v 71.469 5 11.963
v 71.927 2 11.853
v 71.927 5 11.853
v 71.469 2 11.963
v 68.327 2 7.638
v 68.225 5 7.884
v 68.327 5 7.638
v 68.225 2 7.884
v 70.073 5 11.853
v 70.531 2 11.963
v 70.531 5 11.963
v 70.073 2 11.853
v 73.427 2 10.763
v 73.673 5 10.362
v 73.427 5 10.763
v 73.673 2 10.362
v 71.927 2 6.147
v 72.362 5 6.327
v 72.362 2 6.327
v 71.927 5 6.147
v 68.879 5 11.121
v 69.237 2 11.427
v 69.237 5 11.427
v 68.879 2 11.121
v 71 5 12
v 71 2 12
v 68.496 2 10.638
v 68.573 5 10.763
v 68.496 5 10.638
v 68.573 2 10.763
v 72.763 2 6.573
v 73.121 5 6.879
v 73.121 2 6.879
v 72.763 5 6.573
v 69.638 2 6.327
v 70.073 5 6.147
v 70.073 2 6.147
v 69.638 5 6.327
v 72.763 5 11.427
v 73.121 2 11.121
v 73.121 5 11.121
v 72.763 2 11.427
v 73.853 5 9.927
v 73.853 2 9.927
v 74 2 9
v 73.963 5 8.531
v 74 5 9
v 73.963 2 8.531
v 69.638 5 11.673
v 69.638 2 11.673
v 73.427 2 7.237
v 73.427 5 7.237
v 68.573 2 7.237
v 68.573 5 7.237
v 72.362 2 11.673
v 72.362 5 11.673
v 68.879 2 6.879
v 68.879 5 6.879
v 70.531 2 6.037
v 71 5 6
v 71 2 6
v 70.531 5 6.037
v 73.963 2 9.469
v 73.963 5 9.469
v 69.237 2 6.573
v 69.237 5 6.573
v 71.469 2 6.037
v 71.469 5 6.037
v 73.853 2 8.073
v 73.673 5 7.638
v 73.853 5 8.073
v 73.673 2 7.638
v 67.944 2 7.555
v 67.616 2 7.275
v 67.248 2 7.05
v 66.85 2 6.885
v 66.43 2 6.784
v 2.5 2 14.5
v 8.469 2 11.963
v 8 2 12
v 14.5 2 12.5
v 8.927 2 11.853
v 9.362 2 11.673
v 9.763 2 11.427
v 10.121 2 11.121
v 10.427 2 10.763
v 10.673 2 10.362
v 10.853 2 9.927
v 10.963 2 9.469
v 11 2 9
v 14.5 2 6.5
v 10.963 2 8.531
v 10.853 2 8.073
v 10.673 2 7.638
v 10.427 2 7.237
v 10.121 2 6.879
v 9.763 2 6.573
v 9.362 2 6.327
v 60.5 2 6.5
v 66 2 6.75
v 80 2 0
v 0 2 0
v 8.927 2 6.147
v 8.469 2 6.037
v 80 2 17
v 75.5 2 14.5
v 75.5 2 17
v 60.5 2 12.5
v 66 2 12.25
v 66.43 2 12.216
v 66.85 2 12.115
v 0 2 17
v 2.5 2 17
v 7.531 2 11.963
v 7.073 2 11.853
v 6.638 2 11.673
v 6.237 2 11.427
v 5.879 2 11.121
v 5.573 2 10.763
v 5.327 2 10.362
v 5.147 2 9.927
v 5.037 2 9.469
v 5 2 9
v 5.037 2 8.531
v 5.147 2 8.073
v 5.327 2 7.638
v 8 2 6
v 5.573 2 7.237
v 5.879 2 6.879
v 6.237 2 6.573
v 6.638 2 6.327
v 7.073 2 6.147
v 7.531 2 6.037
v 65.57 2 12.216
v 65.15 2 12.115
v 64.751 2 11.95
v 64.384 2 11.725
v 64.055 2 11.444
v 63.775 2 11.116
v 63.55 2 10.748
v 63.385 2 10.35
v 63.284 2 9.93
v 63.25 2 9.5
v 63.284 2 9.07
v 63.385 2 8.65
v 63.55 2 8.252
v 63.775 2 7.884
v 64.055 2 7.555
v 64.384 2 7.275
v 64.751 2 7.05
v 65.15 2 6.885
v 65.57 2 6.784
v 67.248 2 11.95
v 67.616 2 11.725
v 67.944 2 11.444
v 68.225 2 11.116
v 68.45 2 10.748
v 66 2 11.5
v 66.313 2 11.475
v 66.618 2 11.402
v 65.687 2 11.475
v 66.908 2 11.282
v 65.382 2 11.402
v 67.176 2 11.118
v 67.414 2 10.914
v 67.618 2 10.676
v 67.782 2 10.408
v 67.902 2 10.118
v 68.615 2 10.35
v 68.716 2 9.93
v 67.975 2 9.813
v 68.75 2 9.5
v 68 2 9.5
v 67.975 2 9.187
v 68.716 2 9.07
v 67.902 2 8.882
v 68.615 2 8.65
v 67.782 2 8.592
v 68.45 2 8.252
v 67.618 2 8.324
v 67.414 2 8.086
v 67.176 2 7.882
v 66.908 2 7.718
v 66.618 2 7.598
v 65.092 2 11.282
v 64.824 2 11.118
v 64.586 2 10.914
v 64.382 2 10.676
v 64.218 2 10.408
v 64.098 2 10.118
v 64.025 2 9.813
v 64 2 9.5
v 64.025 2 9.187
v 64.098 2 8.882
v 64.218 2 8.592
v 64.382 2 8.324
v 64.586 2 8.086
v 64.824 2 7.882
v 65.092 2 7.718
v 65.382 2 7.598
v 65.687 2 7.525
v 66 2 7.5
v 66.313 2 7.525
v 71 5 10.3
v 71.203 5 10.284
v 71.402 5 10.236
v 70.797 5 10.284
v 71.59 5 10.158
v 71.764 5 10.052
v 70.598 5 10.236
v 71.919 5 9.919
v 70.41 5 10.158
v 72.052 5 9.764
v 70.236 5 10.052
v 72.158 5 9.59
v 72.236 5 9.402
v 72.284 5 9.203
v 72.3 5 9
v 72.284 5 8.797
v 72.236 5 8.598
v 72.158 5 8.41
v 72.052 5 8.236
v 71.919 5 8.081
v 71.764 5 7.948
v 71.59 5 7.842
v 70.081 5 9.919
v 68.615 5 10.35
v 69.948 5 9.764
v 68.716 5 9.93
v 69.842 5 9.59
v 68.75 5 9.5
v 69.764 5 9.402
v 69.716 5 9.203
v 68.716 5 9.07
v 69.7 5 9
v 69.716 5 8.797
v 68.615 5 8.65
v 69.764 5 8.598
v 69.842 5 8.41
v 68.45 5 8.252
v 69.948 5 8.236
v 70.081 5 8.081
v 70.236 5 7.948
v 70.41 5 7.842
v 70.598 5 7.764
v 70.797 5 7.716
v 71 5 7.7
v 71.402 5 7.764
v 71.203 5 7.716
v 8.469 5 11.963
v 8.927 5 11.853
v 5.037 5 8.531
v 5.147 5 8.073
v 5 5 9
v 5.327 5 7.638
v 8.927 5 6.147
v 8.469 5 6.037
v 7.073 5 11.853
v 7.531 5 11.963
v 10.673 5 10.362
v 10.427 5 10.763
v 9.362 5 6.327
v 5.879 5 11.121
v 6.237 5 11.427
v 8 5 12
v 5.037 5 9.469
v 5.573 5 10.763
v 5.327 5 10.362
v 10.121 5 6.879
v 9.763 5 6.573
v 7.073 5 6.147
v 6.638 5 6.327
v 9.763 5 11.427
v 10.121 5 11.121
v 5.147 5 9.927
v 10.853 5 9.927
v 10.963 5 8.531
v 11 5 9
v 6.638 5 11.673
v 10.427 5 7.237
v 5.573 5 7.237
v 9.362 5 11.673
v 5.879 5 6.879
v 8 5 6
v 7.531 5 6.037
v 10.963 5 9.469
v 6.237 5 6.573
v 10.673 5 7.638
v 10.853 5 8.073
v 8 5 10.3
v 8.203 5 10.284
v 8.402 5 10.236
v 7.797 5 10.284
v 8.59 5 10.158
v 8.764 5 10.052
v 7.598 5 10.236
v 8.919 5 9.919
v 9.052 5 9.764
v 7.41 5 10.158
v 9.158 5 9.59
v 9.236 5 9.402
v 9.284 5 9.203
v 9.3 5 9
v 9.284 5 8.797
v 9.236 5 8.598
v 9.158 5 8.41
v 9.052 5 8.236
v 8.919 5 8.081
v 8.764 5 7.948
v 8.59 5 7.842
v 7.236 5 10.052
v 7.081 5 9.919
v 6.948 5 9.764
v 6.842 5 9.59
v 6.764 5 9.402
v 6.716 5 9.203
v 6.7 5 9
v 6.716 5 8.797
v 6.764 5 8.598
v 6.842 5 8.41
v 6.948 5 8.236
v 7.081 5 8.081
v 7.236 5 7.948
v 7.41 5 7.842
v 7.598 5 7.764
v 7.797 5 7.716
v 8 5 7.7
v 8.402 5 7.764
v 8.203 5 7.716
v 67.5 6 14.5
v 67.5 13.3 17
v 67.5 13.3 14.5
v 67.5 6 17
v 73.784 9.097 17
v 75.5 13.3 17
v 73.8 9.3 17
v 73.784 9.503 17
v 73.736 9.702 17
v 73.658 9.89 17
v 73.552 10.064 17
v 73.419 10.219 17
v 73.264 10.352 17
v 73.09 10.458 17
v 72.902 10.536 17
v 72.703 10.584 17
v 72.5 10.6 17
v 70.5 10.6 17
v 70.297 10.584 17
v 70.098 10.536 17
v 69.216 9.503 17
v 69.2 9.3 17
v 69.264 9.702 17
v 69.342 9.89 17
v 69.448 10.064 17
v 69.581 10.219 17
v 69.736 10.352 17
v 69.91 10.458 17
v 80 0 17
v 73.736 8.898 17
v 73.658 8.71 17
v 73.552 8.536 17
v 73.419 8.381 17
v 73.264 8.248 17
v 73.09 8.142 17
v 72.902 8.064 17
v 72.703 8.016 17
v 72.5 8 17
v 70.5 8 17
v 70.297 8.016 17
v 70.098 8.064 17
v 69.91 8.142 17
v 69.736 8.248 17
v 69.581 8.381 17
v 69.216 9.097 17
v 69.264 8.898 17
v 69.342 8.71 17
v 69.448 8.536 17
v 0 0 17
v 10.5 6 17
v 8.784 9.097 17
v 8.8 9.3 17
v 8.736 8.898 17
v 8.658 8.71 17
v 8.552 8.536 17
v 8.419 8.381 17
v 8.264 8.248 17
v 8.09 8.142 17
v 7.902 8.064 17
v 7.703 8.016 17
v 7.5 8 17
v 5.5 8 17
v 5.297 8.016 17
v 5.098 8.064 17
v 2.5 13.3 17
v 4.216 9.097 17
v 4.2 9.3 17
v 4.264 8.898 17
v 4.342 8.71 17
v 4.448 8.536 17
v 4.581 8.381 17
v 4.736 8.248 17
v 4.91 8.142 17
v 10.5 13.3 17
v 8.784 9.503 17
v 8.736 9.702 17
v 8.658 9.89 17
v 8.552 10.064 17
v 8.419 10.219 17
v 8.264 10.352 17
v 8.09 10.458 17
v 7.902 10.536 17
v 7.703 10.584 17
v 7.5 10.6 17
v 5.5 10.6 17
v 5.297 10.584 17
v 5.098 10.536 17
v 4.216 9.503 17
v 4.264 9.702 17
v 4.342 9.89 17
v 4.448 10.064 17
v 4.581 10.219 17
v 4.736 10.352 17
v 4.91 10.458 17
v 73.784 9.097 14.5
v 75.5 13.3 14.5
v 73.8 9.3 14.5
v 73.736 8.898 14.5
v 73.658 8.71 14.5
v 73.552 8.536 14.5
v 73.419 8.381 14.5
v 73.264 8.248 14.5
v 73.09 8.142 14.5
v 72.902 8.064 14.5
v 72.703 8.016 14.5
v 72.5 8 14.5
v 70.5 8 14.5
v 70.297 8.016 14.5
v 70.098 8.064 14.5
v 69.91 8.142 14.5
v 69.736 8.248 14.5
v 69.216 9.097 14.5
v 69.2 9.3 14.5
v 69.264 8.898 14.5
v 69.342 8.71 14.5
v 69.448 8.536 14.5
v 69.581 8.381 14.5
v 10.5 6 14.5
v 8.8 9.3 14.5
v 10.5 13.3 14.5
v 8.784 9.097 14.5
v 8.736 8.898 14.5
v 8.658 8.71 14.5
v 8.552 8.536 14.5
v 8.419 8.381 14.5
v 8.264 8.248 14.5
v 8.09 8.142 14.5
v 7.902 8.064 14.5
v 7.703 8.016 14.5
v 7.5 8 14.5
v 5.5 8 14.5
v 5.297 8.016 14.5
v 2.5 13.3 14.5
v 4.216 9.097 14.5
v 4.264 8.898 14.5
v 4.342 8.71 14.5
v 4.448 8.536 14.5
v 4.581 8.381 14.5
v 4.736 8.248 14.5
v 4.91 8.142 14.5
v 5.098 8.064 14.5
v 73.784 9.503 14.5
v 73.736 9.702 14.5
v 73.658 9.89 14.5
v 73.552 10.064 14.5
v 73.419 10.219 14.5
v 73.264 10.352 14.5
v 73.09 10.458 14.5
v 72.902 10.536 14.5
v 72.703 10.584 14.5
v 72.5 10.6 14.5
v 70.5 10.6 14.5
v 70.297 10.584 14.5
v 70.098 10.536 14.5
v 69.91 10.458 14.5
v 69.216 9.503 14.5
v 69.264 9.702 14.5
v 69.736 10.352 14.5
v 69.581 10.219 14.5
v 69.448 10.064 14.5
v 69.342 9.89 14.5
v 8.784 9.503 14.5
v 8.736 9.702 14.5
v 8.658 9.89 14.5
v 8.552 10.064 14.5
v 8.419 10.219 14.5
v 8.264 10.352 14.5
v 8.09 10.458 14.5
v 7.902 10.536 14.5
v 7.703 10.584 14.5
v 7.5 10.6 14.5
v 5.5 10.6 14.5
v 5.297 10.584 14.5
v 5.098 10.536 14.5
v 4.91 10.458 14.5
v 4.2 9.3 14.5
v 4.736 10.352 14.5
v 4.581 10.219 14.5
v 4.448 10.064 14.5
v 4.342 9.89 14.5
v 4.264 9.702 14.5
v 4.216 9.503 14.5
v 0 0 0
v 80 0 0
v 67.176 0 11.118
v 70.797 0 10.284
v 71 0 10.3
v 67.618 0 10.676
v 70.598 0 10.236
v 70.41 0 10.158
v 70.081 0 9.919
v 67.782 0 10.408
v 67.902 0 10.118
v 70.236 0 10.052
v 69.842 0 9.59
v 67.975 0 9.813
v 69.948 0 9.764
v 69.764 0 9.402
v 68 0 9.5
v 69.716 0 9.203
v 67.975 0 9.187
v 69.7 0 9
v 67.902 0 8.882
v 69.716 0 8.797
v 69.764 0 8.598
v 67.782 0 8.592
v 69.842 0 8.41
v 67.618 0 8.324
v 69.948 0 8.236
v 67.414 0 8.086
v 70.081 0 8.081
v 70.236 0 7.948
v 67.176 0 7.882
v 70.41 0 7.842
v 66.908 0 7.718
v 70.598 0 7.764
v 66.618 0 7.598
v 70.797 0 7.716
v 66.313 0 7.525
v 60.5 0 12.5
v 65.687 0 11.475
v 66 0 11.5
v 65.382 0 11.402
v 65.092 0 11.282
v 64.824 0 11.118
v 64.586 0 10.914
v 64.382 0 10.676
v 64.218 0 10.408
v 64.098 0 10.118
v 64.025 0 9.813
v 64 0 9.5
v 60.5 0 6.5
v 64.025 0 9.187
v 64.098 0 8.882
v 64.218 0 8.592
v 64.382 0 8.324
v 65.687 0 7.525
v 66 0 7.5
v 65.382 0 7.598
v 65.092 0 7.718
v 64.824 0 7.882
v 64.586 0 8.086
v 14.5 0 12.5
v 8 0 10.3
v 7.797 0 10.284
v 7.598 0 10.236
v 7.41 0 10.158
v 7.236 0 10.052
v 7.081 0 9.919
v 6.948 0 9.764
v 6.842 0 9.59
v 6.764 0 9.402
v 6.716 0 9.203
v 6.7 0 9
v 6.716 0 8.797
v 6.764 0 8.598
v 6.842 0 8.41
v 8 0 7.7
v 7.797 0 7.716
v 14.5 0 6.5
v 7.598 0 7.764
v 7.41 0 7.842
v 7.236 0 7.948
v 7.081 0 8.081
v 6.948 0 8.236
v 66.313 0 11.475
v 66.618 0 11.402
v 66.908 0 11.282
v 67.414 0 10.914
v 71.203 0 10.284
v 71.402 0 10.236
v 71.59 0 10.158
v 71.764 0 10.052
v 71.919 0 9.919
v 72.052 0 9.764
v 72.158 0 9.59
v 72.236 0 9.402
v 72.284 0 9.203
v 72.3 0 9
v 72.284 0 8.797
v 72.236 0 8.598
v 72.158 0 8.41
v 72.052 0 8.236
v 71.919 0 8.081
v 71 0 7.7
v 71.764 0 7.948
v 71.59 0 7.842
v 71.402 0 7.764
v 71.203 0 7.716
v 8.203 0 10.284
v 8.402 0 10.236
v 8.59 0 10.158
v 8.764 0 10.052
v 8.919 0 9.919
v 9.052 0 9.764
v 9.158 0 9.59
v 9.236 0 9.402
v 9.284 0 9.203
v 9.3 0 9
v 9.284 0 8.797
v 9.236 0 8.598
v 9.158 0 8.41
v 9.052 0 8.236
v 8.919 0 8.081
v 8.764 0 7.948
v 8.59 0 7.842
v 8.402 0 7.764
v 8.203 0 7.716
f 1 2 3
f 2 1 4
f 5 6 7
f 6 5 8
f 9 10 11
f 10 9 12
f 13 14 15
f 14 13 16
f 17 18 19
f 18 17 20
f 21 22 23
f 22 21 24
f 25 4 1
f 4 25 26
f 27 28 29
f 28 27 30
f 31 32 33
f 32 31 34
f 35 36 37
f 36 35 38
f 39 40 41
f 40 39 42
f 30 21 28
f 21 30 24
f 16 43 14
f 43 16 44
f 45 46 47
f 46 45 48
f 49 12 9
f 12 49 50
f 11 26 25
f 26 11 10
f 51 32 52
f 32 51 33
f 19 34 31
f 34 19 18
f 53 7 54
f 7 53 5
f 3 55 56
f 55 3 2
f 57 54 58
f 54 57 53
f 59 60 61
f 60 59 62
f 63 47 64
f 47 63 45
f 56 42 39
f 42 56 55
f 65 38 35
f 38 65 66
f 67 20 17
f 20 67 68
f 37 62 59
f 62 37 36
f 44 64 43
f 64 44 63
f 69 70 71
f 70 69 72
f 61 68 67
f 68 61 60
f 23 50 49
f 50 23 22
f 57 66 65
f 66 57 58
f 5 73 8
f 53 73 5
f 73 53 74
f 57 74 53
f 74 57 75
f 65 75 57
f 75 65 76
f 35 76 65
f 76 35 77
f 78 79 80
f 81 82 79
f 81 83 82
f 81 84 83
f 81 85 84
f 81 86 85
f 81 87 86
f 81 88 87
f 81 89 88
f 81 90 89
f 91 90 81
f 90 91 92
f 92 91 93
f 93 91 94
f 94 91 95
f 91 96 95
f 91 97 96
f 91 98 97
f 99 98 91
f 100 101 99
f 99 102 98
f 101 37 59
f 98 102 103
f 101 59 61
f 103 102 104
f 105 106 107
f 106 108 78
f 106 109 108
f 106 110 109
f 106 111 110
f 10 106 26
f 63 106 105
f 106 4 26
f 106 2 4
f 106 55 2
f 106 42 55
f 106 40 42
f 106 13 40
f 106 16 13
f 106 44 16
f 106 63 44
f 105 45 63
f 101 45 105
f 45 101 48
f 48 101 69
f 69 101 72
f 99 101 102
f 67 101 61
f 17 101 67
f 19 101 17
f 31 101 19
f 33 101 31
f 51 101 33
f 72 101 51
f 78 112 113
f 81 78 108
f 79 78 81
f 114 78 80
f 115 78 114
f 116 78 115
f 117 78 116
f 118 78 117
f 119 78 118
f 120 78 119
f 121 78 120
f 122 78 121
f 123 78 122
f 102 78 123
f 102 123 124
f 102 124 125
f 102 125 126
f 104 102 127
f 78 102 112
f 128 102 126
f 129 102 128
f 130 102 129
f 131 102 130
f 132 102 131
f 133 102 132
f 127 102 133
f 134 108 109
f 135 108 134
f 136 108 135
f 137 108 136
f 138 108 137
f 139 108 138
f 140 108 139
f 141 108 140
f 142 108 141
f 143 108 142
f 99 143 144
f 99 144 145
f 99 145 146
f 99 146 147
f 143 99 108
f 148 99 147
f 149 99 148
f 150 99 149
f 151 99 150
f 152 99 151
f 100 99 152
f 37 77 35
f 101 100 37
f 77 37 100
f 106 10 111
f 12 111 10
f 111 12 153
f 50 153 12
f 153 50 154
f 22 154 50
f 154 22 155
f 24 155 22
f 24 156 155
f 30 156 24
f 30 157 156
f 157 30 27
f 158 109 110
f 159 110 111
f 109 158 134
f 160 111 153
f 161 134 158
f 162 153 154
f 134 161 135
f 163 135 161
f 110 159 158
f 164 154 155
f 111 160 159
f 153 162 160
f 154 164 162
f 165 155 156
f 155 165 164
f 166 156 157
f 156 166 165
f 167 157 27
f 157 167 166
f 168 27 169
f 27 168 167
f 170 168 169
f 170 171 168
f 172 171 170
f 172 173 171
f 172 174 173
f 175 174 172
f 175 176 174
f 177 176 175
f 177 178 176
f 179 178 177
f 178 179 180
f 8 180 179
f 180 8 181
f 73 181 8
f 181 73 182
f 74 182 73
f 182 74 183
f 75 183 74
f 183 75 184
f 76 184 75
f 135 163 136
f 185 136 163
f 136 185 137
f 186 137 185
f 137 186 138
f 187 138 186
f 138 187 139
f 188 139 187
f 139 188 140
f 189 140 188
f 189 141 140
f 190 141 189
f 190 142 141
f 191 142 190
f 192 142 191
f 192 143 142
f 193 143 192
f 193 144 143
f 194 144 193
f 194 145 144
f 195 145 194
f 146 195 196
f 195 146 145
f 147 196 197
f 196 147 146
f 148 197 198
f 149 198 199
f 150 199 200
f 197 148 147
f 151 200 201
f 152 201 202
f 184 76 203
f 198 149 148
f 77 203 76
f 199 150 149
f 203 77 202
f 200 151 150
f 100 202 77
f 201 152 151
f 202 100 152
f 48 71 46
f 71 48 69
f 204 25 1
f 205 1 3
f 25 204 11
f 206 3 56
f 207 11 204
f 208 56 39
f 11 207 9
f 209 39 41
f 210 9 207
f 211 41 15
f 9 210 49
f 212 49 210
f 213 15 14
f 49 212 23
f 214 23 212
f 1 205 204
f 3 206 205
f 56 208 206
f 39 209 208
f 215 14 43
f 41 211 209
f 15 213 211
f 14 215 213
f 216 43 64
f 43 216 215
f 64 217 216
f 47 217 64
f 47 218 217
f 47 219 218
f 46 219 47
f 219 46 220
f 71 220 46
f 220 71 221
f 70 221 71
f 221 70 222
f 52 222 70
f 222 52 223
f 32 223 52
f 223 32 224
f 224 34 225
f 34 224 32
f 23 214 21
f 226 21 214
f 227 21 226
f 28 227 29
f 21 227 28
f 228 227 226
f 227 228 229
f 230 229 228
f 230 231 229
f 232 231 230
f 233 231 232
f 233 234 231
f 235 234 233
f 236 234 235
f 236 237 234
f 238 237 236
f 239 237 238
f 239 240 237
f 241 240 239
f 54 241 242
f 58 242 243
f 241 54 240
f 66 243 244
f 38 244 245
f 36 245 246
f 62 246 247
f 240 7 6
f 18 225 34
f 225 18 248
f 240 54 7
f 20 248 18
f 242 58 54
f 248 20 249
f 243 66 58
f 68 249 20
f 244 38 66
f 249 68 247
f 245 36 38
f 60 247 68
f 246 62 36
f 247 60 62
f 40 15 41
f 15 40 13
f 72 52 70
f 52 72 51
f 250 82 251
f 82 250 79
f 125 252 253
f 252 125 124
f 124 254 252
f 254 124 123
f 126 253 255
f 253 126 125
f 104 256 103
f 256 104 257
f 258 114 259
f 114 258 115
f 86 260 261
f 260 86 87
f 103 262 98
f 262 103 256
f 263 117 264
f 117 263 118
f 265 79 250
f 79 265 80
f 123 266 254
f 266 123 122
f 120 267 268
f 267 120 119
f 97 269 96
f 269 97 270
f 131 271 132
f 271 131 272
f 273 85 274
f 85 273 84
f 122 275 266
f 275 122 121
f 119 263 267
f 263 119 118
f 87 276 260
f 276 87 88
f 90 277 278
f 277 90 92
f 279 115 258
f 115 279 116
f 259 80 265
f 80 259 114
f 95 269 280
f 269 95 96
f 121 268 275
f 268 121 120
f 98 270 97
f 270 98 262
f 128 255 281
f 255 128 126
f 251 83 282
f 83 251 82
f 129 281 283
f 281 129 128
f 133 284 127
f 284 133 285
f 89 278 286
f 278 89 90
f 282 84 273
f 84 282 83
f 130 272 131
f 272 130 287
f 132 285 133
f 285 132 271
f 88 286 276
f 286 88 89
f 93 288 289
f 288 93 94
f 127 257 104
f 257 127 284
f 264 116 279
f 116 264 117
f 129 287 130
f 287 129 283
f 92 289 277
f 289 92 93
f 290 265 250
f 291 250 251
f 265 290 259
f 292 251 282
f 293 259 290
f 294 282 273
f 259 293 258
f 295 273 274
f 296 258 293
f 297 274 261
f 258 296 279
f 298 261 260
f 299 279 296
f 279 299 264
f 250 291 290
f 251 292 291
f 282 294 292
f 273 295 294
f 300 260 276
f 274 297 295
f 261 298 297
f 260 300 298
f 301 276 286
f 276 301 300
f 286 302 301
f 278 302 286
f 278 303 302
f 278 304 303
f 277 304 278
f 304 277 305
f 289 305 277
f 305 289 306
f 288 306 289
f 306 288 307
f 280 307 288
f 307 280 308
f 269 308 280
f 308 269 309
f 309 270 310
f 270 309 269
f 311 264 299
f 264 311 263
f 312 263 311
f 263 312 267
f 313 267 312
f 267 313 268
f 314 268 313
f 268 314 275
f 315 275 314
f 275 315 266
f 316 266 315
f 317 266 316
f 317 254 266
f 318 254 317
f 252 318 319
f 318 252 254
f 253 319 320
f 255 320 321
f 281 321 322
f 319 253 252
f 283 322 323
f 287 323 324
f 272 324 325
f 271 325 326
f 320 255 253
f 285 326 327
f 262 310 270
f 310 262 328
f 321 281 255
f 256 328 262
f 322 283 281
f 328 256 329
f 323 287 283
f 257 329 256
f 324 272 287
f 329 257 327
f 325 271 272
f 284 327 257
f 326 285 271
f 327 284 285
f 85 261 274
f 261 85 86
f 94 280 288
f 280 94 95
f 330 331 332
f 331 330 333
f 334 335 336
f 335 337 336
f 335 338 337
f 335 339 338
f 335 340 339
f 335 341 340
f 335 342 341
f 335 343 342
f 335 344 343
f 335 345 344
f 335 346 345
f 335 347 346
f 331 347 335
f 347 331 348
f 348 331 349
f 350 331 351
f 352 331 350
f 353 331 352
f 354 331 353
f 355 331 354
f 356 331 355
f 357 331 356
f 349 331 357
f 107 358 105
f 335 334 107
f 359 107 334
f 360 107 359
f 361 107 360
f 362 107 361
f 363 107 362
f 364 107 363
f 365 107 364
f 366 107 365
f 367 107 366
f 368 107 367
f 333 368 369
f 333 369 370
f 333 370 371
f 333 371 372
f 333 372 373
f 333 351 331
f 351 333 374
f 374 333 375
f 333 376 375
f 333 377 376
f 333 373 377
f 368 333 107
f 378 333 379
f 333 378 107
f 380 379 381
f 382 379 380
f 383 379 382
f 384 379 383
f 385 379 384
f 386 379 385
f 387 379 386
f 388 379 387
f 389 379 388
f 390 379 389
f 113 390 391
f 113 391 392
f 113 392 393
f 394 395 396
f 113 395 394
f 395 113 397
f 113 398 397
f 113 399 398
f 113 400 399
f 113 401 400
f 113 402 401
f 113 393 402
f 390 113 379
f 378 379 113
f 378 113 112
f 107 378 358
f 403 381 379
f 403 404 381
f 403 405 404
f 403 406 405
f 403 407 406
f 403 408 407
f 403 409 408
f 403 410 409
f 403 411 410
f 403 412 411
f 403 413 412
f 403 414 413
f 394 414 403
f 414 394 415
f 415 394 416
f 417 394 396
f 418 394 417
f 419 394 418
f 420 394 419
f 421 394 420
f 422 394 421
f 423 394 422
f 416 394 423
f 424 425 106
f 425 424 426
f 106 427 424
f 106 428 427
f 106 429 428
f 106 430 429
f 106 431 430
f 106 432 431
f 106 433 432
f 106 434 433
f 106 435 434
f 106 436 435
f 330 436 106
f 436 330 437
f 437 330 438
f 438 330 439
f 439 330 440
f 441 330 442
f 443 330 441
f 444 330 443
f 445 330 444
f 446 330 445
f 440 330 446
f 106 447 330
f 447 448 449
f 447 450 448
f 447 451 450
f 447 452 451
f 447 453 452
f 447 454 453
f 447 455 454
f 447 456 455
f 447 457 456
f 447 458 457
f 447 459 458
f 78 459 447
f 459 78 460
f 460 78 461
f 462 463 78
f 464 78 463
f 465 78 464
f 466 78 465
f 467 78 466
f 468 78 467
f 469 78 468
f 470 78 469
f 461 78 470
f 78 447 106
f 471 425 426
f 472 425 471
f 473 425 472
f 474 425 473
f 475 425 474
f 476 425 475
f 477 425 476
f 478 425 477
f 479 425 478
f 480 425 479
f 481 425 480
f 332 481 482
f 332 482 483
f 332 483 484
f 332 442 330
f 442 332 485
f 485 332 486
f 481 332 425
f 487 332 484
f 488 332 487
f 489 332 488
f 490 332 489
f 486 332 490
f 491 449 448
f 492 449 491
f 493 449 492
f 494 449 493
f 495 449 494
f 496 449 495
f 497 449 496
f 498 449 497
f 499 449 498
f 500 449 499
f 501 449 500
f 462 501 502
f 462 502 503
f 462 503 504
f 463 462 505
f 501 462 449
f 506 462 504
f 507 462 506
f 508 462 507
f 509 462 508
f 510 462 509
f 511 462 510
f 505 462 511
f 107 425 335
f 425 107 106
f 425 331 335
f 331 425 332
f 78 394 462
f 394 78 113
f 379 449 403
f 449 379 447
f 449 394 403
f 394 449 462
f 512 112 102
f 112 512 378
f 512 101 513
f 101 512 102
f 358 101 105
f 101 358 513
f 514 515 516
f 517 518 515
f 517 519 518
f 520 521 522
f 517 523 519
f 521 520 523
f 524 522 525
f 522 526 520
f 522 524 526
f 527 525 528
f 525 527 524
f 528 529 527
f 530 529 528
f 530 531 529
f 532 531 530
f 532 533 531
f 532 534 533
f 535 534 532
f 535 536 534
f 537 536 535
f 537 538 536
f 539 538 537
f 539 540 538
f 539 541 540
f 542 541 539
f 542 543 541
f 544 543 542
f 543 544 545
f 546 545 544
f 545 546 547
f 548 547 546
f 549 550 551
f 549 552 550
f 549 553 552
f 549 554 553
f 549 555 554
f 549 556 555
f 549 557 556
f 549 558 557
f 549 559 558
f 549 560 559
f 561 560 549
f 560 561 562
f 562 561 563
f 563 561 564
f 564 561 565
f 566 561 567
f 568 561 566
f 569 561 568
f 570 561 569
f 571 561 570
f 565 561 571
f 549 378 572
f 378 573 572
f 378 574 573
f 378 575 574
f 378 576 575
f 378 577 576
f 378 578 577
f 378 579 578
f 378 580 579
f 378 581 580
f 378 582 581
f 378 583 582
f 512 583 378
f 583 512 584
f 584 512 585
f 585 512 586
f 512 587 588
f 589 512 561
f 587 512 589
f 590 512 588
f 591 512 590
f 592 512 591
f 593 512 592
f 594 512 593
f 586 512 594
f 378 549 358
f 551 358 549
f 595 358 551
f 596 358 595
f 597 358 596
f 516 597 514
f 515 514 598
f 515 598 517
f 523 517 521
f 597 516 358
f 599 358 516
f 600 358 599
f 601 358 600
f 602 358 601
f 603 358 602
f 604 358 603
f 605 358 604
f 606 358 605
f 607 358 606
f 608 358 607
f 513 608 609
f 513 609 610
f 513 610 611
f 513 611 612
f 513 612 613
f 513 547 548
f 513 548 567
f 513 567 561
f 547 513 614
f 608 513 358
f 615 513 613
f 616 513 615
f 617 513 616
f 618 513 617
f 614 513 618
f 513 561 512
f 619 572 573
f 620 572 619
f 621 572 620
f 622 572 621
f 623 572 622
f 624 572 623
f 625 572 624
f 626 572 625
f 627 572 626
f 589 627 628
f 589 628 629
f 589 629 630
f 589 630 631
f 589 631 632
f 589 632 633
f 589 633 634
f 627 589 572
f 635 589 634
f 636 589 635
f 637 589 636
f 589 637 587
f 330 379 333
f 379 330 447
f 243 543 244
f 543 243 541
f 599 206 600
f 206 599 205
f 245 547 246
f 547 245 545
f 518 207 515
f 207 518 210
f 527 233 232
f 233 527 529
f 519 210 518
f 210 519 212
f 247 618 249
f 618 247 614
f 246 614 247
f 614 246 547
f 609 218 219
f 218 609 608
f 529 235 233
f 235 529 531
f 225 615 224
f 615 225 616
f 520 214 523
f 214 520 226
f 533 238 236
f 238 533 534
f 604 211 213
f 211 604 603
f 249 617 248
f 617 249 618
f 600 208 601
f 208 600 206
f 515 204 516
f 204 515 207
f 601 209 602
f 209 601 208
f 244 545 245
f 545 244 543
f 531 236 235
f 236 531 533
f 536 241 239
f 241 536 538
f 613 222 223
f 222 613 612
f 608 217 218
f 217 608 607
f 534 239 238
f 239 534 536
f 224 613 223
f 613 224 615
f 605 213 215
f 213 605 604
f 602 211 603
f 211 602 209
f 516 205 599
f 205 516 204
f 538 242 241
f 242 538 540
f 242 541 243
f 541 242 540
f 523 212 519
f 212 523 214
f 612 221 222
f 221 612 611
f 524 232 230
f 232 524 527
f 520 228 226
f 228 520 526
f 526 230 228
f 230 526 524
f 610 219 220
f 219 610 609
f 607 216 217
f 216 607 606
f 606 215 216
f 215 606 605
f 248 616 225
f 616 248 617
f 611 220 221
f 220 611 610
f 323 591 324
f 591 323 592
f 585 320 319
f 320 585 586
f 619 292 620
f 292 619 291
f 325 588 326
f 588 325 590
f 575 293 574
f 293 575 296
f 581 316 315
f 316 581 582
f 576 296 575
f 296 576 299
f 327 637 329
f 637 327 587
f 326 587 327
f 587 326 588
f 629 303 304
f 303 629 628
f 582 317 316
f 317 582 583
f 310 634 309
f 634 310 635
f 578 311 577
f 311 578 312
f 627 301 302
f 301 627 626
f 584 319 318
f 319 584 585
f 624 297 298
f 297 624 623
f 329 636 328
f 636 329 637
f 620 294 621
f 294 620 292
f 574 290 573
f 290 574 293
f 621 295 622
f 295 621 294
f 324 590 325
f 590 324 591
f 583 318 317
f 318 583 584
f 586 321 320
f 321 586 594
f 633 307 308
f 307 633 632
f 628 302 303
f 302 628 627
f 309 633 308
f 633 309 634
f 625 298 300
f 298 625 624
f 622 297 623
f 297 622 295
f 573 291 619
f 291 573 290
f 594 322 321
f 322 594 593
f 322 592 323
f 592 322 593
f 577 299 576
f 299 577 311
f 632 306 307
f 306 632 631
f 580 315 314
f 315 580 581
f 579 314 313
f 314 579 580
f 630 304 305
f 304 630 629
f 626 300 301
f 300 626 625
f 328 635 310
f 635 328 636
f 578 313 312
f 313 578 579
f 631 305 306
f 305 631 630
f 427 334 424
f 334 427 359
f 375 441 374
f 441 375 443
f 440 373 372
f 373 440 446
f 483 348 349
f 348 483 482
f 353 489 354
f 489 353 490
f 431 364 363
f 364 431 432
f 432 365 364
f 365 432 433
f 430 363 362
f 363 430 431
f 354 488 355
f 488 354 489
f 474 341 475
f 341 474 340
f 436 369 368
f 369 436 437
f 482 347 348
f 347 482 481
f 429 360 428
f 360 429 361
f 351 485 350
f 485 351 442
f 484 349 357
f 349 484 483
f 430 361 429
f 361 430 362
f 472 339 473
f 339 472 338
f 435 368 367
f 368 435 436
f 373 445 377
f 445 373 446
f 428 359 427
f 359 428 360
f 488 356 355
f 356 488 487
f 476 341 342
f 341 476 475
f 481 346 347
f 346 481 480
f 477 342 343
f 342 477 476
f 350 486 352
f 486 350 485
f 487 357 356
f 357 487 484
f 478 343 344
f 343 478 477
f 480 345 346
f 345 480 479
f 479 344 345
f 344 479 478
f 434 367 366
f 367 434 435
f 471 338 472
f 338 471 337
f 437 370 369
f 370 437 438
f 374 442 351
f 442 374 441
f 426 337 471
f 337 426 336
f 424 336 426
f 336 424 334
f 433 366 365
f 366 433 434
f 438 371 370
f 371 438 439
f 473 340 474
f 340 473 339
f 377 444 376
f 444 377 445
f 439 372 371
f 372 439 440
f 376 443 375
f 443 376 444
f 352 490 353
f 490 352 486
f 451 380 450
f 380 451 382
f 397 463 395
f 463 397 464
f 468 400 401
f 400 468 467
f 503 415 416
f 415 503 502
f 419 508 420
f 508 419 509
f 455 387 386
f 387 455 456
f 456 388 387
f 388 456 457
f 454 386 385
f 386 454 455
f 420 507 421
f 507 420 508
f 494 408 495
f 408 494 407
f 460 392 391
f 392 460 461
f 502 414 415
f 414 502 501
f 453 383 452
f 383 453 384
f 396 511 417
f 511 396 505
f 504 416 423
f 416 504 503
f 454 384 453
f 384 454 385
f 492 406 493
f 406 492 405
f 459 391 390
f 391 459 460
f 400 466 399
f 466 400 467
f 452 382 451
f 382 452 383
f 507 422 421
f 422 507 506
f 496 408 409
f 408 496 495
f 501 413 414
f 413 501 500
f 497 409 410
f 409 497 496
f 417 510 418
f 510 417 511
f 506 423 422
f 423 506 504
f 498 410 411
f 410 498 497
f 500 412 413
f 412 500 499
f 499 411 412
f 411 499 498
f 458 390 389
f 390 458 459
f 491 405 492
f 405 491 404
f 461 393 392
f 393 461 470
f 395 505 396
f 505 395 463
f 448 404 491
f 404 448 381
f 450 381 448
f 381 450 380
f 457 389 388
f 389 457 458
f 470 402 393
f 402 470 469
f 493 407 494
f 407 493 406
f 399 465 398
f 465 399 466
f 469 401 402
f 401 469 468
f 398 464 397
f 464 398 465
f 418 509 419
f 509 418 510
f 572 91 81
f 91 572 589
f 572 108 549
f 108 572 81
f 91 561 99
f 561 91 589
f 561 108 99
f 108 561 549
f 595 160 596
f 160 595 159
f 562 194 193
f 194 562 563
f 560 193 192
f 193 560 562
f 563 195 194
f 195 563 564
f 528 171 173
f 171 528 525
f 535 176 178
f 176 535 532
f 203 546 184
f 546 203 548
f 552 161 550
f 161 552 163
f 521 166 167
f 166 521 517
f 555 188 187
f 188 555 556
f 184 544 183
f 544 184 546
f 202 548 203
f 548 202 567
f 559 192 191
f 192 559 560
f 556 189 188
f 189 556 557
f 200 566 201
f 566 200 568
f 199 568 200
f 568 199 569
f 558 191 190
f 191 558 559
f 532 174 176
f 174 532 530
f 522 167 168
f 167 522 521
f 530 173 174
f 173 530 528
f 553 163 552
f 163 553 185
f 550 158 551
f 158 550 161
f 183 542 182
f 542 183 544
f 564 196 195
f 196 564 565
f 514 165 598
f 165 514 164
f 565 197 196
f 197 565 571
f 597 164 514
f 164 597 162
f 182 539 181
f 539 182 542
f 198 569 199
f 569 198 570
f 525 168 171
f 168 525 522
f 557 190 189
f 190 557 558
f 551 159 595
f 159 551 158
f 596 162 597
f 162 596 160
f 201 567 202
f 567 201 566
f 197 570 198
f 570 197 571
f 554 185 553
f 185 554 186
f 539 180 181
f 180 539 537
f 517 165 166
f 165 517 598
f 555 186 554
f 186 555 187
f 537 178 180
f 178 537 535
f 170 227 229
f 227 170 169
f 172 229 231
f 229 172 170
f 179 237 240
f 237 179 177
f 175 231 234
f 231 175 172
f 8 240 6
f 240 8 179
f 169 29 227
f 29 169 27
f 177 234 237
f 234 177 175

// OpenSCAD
// CF faceplate for the unused external D-sub opening on the RocHard.
//
// A plate that sits BEHIND the D-sub cut-out, screwed to the case through the
// two D-sub mounting holes. It has a slot for the CF card socket and a hole
// for the activity LED. Two tabs ("legs") run back from it; the CF adapter
// board (mounted component side DOWN) screws onto them through its two front
// mounting holes, so the socket hangs into the slot.
//
// Left/right are as seen from OUTSIDE the case, looking at the D-sub opening.
// Coordinates: X = across the plate (0 = left edge seen from outside), Z = up
// (0 = bottom edge), Y = into the case (the face against the panel is Y = 0).
// The geometry is built inside-out and mirrored at the end so that holds.

/* [Plate] */
plate_w = 75;          // +2.5 mm on each side (was 70)
v_grow  = 2.5;         // added to the top edge and the bottom edge
plate_h_full = 13 + 2 * v_grow;   // height before trimming (everything is placed from this)
top_trim = 1;          // removed from the LEG edge (model top = installed bottom)
plate_h = plate_h_full - top_trim;
led_side_ext = 5;      // extra plate width added on the LED side only
plate_t = 2;

/* [D-sub mounting holes] */
dsub_spacing = 62;      // centre-to-centre of the pair (kept fixed; the pair shifts together)
dsub_z       = plate_h_full / 2; // hole centre height (unchanged by top_trim)
dsub_hole_d  = 2.6;     // self-tap pilot: the screw bites into the plate + boss
dsub_slot    = 0;       // sideways slot travel (0 = round)
// Left hole as installed, seen from outside (the side away from the LED).
// Positive moves it toward that end of the plate. Right hole stays put.
dsub_left_out = 1;
// Both holes then shift toward the edge that has the LED, until the hole
// beside the LED is this far (centre to centre, sideways) from the LED centre.
dsub_led_gap = 6;
boss_d       = 6;       // boss (post) behind each hole, for more thread
led_clear_d  = 5.5;     // clearance pocket for the LED body/flange, cut from anything behind the plate
boss_len     = 3;       // boss depth behind the plate (kept short to clear the PCB screws)

/* [CF card slot] */
cf_w        = 46;
cf_h        = 6;
cf_top_gap  = 1;        // slot top edge below the plate top edge, before installed_up
// Positive moves the slot up once the plate is installed (that direction is
// toward the bottom edge of this model, because it mounts upside down).
installed_up = 2;

/* [LED] */
led_d        = 4;       // hole diameter (4 mm LED)
led_side     = -1;      // -1 = LEFT of the slot, +1 = RIGHT (as seen from outside)
led_from_cf  = 4.5;     // LED centre, out from that side's slot edge (D-sub holes are placed from this)
led_move_out = 1;       // then move the LED this much further from the slot (D-sub holes stay put)

/* [Board tabs (legs)] */
tab_spacing  = 64;      // PCB front holes, centre-to-centre. Not the D-sub holes.
tab_t        = 2.5;     // leg (and joining rib) thickness, flush with the leg-side plate edge
// Legs are one uniform thickness (no step). The board rests on the leg's inner
// face, leg_up above the ORIGINAL (untrimmed) leg-side edge once installed;
// the leg thickness grows outward from there.
leg_up       = 2;       // (unused now: legs are flush with the plate edge)
leg_far_in   = 1;       // leg AWAY from the LED: moved this much toward the LED side
leg_led_out  = 2;       // leg on the LED side: moved this much further from the LED
tab_w        = 8;       // tab width (along X)
board_hole_y = 7.3;     // board hole centre, back from the plate's BACK face (measured from the fascia)
                        // (the board edge butts against the plate back)
tab_beyond   = 4;       // tab material past the hole centre
tab_hole_d   = 2.6;     // self-tap pilot
tab_slot     = 2;       // sideways slot travel (oval, for adjustment)
rib_depth    = 4;       // rib joining the legs along the plate back (0 = none)

$fn = 40;

// ---------------------------------------------------------------------------

cx      = plate_w / 2;
// Installed bottom is this model's top edge. The legs follow that new edge.
// The slot stays put against the original edge; v_grow sits outside it.
orig_top = plate_h_full - v_grow;
board_face_z = plate_h - tab_t;          // legs FLUSH with the leg-side plate edge (no overhang)
cf_z0   = orig_top - cf_top_gap - cf_h - installed_up;
cf_x0   = cx - cf_w / 2;                              // recentered on the plate
function led_x_at(d) = cf_x0 + (led_side < 0 ? -d : cf_w + d);
led_x0  = led_x_at(led_from_cf);                     // reference for the D-sub holes
led_x   = led_x_at(led_from_cf + led_move_out);      // actual LED position
led_z   = cf_z0 + cf_h / 2;                          // centred on the slot height
// s = +1 is the left hole once the plate is installed and viewed from outside.
function dsub_base_x(s) = cx + s * dsub_spacing / 2 + (s > 0 ? dsub_left_out : 0);
dsub_shift = (led_x0 + led_side * dsub_led_gap) - dsub_base_x(led_side);
function dsub_pre_x(s) = dsub_base_x(s) + dsub_shift;
hole_y  = plate_t + board_hole_y;          // tab hole, from the plate front face
tab_len = board_hole_y + tab_beyond;
// leg centres: s = led_side is the LED-side leg
function leg_x(s) = cx + s * tab_spacing / 2
                    + (s == led_side ? led_side * leg_led_out : led_side * leg_far_in);

module xslot(d, travel, len) {   // slot along X, axis along +Y
    hull() for (dx = [-travel / 2, travel / 2])
        translate([dx, 0, 0]) rotate([-90, 0, 0]) cylinder(d = d, h = len);
}
module zslot(d, travel, len) {   // slot along X, axis along +Z
    hull() for (dx = [-travel / 2, travel / 2])
        translate([dx, 0, 0]) cylinder(d = d, h = len);
}

translate([plate_w, 0, 0]) mirror([1, 0, 0])   // X as seen from outside
difference() {
    union() {
        translate([led_side < 0 ? -led_side_ext : 0, 0, 0])          // the plate
            cube([plate_w + led_side_ext, plate_t, plate_h]);
        if (boss_len > 0) for (s = [-1, 1])                      // D-sub bosses
            translate([dsub_pre_x(s), plate_t, dsub_z])
                rotate([-90, 0, 0]) cylinder(d = boss_d, h = boss_len);
        // rib along the back of the plate joining the two legs into one piece
        translate([leg_x(-1) - tab_w / 2, plate_t, board_face_z])
            cube([leg_x(1) - leg_x(-1) + tab_w, rib_depth, tab_t]);
        for (s = [-1, 1])                                        // board legs
            translate([leg_x(s) - tab_w / 2, plate_t, board_face_z])
                cube([tab_w, tab_len, tab_t]);                   // uniform, no step
    }
    // CF card slot
    translate([cf_x0, -0.1, cf_z0]) cube([cf_w, plate_t + 0.2, cf_h]);
    // LED hole
    translate([led_x, -0.1, led_z]) rotate([-90, 0, 0]) cylinder(d = led_d, h = plate_t + 0.2);
    // LED body/flange clearance behind the plate (keeps the boss off the LED)
    translate([led_x, plate_t, led_z]) rotate([-90, 0, 0]) cylinder(d = led_clear_d, h = boss_len + 20);
    // D-sub screw holes (through plate + boss)
    for (s = [-1, 1])
        translate([dsub_pre_x(s), -0.1, dsub_z])
            xslot(dsub_hole_d, dsub_slot, plate_t + boss_len + 0.2);
    // board screw holes in the tabs
    for (s = [-1, 1])
        translate([leg_x(s), hole_y, board_face_z - 0.1])
            zslot(tab_hole_d, tab_slot, tab_t + 0.2);
}

// clearance report (shown in the console)
echo(str("LED-side boss: wall between screw pilot and LED pocket = ",
         sqrt(pow(dsub_pre_x(led_side) - led_x, 2) + pow(dsub_z - led_z, 2)) - led_clear_d / 2 - dsub_hole_d / 2, " mm"));
echo(str("Boss Z ", dsub_z - boss_d / 2, "..", dsub_z + boss_d / 2, "  vs legs/rib Z ", board_face_z, "..", board_face_z + tab_t));
echo(str("LED hole edge to nearest D-sub hole edge: ",
         sqrt(pow(dsub_pre_x(led_side) - led_x, 2) + pow(dsub_z - led_z, 2)) - (dsub_hole_d + dsub_slot) / 2 - led_d / 2, " mm"));
echo(str("D-sub holes at ", dsub_pre_x(-1), " and ", dsub_pre_x(1),
         ", ", abs(dsub_pre_x(1) - dsub_pre_x(-1)), " mm apart"));
echo(str("LED-side D-sub centre to LED centre, sideways: ", abs(dsub_pre_x(led_side) - led_x), " mm"));
echo(str("Left D-sub hole is ", plate_w - dsub_pre_x(1), " mm from the left end (installed, outside)"));

echo(str("PCB legs at ", leg_x(-1), " and ", leg_x(1), ", ", leg_x(1) - leg_x(-1), " mm apart"));
echo(str("CF slot: X ", cf_x0, "..", cf_x0 + cf_w, "  Z ", cf_z0, "..", cf_z0 + cf_h));
echo(str("Plate height ", plate_h, " (trimmed ", top_trim, " on the leg edge), width ", plate_w + led_side_ext,
         "; legs Z ", board_face_z, "..", board_face_z + tab_t));
echo(str("LED centre: X ", led_x, "  Z ", led_z));
